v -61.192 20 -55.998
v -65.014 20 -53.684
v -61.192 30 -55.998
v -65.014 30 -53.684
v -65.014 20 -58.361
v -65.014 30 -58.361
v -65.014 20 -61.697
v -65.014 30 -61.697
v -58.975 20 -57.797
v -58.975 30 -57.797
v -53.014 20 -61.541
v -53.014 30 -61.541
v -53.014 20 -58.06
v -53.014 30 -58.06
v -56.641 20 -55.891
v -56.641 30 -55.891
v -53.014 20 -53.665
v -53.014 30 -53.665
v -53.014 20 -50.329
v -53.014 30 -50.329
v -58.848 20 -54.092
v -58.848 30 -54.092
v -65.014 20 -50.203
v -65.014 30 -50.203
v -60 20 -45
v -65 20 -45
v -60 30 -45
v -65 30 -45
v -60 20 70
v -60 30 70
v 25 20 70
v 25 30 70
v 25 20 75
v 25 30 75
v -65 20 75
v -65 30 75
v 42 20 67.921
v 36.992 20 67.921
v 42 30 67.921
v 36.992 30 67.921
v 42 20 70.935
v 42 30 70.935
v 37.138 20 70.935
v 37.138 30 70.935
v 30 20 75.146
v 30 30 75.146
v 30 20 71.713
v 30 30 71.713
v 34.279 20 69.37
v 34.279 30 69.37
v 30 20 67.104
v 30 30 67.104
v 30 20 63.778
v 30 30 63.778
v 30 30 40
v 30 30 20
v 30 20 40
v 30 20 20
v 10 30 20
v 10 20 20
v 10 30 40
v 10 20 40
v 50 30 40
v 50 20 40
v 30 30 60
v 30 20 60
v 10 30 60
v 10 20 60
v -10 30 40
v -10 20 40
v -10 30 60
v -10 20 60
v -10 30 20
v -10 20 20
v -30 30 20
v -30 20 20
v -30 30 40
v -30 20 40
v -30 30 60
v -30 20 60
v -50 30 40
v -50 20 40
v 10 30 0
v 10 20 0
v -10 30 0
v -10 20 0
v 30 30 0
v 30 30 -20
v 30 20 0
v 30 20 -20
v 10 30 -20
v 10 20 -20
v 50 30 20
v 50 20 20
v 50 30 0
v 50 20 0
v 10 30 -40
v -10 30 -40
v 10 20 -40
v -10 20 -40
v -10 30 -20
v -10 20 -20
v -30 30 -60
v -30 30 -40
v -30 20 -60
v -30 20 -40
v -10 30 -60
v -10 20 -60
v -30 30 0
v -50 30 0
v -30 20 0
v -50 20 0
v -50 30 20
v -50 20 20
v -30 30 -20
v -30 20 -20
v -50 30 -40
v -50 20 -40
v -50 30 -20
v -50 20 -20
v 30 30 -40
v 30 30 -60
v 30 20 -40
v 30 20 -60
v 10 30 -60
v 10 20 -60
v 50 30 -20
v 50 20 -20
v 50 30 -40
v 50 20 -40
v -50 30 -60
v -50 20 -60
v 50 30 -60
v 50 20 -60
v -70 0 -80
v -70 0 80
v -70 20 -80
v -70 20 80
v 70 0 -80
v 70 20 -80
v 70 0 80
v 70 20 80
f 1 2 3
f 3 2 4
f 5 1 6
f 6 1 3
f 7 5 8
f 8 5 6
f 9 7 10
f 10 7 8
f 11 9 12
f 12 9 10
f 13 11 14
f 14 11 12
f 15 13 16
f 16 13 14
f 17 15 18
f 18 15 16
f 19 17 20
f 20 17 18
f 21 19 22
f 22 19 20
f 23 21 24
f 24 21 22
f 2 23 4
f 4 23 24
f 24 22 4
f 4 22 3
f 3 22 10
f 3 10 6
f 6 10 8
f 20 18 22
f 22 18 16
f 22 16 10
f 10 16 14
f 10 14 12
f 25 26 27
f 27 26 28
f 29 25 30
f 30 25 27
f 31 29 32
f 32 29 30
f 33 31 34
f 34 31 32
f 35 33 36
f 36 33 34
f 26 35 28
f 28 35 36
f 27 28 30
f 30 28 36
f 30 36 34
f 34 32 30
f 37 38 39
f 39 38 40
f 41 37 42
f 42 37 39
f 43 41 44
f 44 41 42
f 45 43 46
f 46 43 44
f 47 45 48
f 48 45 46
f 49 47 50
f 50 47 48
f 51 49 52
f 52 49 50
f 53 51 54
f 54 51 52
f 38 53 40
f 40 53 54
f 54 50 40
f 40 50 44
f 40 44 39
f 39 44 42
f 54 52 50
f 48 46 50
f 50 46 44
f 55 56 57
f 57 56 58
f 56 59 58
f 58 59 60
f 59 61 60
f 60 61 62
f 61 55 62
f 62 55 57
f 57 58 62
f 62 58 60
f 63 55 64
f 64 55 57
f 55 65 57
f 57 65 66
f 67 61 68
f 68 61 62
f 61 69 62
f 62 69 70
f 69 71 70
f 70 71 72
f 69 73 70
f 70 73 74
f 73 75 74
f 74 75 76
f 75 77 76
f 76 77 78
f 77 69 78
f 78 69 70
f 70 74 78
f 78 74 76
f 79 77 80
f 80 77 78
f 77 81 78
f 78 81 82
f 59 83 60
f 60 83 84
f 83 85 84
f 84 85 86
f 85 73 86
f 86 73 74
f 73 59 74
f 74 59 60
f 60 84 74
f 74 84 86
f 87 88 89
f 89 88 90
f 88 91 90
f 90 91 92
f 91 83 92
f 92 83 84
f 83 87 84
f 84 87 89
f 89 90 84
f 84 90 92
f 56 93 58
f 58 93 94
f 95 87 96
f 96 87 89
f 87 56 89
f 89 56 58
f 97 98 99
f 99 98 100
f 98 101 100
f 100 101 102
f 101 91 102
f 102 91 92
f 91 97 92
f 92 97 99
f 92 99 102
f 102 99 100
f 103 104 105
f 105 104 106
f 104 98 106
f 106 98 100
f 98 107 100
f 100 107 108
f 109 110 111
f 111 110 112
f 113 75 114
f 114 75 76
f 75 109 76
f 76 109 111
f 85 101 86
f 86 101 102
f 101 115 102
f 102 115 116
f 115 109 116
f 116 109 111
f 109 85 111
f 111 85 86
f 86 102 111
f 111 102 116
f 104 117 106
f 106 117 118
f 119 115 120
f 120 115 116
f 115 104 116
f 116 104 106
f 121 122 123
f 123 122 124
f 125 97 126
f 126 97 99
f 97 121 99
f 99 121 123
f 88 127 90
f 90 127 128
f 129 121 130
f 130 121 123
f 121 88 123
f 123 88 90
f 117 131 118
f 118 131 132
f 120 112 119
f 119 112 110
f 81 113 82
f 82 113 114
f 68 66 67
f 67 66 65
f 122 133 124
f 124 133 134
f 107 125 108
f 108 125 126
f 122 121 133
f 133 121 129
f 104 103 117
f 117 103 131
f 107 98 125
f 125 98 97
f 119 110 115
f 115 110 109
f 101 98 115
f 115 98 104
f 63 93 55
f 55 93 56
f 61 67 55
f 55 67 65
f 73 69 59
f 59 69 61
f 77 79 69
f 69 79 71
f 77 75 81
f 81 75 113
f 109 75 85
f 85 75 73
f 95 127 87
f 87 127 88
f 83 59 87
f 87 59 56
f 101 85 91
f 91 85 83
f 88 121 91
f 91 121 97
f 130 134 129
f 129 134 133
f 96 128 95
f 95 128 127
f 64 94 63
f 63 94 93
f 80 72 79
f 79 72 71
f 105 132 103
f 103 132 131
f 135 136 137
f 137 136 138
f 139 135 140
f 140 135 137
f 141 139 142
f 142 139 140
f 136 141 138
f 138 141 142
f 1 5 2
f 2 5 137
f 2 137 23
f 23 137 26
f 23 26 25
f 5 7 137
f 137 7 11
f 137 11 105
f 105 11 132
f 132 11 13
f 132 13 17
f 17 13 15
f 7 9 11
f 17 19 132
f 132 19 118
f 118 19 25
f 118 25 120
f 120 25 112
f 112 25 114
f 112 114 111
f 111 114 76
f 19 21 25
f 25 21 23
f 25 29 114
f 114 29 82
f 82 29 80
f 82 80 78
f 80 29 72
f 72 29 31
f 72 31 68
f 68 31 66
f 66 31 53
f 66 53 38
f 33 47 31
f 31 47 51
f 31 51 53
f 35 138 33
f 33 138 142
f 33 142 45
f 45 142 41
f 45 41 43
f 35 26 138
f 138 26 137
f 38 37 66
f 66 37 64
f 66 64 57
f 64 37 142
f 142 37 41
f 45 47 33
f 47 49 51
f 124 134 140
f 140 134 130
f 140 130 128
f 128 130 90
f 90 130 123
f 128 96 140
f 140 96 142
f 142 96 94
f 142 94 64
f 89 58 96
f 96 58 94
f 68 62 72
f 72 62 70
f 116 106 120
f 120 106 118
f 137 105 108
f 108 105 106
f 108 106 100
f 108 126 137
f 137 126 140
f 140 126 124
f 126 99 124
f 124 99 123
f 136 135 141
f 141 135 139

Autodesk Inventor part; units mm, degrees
ref_plane "YZ Plane" through (0, 0, 0) normal (1, 0, 0) x (0, 1, 0)
ref_plane "XZ Plane" through (0, 0, 0) normal (0, 1, 0) x (-1, 0, 0)
ref_plane "XY Plane" through (0, 0, 0) normal (0, 0, 1) x (1, 0, 0)
sketch "Sketch1" plane through (0, 0, 0) normal (0, 1, 0) x (-1, 0, 0)
  line L0 (70, 80) -> (-70, 80)
  line L1 (-70, 80) -> (-70, -80)
  line L2 (-70, -80) -> (70, -80)
  line L3 (70, -80) -> (70, 80)
  point P0 (0, 0)
  dimension "d0" = 140
  dimension "d1" = 160
  dimension "d4" = 70
  dimension "d5" = 80
extrude "Extrusion1" add sketch "Sketch1" along normal blind 20
sketch "Sketch2" plane through (0, 20, 0) normal (0, 1, 0) x (1, 0, 0)
  line L0 (50, 60) -> (-50, 60)
  line L1 (-50, 60) -> (-50, -60)
  line L2 (-50, -60) -> (50, -60)
  line L3 (50, -60) -> (50, 60)
  line L4 (50, 60) -> (-50, -60) construction
  line L5 (-50, 60) -> (50, -60) construction
  point P0 (0, 0)
  dimension "d8" = 100
  dimension "d9" = 120
extrude "Extrusion2" add sketch "Sketch2" along normal blind 10
sketch "Sketch3" plane through (0, 30, 0) normal (0, 1, 0) x (1, 0, 0)
  line L0 (-50, 60) -> (-50, -60) projected
  line L1 (-50, -60) -> (-30, -60)
  line L2 (-30, -60) -> (-30, -40)
  line L3 (-30, -40) -> (-50, -40)
  line L4 (-50, -40) -> (-50, -60)
  line L5 (-10, -60) -> (10, -60)
  line L6 (10, -60) -> (10, -40)
  line L7 (10, -40) -> (-10, -40)
  line L8 (-10, -40) -> (-10, -60)
  line L9 (10, -40) -> (30, -40)
  line L10 (30, -40) -> (30, -20)
  line L11 (30, -20) -> (10, -20)
  line L12 (10, -20) -> (10, -40)
  line L13 (-30, -40) -> (-10, -40)
  line L14 (-10, -40) -> (-10, -20)
  line L15 (-10, -20) -> (-30, -20)
  line L16 (-30, -20) -> (-30, -40)
  line L17 (-50, -60) -> (50, -60) projected
  line L18 (-53.5785, -189.3047) -> (-33.5785, -189.3047)
  line L19 (-33.5785, -189.3047) -> (-33.5785, -169.3047)
  line L20 (-33.5785, -169.3047) -> (-53.5785, -169.3047)
  line L21 (-53.5785, -169.3047) -> (-53.5785, -189.3047)
  line L22 (-50, -20) -> (-30, -20)
  line L23 (-30, -20) -> (-30, 0)
  line L24 (-30, 0) -> (-50, 0)
  line L25 (-50, 0) -> (-50, -20)
  line L26 (-10, -20) -> (10, -20)
  line L27 (10, -20) -> (10, 0)
  line L28 (10, 0) -> (-10, 0)
  line L29 (-10, 0) -> (-10, -20)
  line L30 (10, 40) -> (30, 40)
  line L31 (30, 40) -> (30, 60)
  line L32 (30, 60) -> (10, 60)
  line L33 (10, 60) -> (10, 40)
  line L34 (-10, 20) -> (-30, 20)
  line L35 (-30, 0) -> (-10, 0)
  line L36 (-30, 20) -> (-30, 0)
  line L37 (-10, 0) -> (-10, 20)
  line L38 (10, 40) -> (-10, 40)
  line L39 (-10, 20) -> (10, 20)
  line L40 (-10, 40) -> (-10, 20)
  line L41 (10, 20) -> (10, 40)
  line L42 (30, 20) -> (10, 20)
  line L43 (10, 0) -> (30, 0)
  line L44 (10, 20) -> (10, 0)
  line L45 (30, 0) -> (30, 20)
  line L46 (-10, 60) -> (-30, 60)
  line L47 (-30, 40) -> (-10, 40)
  line L48 (-30, 60) -> (-30, 40)
  line L49 (-10, 40) -> (-10, 60)
  line L50 (-30, 40) -> (-50, 40)
  line L51 (-50, 20) -> (-30, 20)
  line L52 (-50, 40) -> (-50, 20)
  line L53 (-30, 20) -> (-30, 40)
  line L54 (30, 20) -> (50, 20)
  line L55 (50, 20) -> (50, 40)
  line L56 (50, 40) -> (30, 40)
  line L57 (30, 40) -> (30, 20)
  line L58 (30, -20) -> (50, -20)
  line L59 (50, -20) -> (50, 0)
  line L60 (50, 0) -> (30, 0)
  line L61 (30, 0) -> (30, -20)
  line L62 (30, -60) -> (50, -60)
  line L63 (50, -60) -> (50, -40)
  line L64 (50, -40) -> (30, -40)
  line L65 (30, -40) -> (30, -60)
  dimension "d12" = 20
  dimension "d13" = 20
  dimension "d14" = 20
  dimension "d15" = 20
  dimension "d17" = 20
  dimension "d18" = 20
  dimension "d19" = 20
  dimension "d21" = 20
  dimension "d22" = 20
  dimension "d25" = 20
  dimension "d26" = 20
  dimension "d27" = 20
  dimension "d28" = 20
  dimension "d30" = 20
  dimension "d31" = 20
  dimension "d33" = 20
  dimension "d34" = 20
  dimension "d36" = 20
  dimension "d37" = 20
  dimension "d39" = 20
  dimension "d40" = 20
  dimension "d42" = 20
  dimension "d43" = 20
  dimension "d45" = 20
  dimension "d46" = 20
  dimension "d48" = 20
  dimension "d49" = 20
  dimension "d77" = 20
  dimension "d78" = 20
  dimension "d80" = 20
  dimension "d81" = 20
  dimension "d83" = 20
  dimension "d84" = 20
extrude "Extrusion5" cut sketch "Sketch3" against normal blind 10 contours L50 L53 L51 L0 | L48 L46 L49 L47 | L24 L23 L22 L0 | L34 L37 L35 L36 | L38 L41 L39 L40 | L33 L32 L31 L30 | L3 L2 L1 L0 | L15 L14 L13 L16 | L28 L27 L26 L29 | L42 L45 L43 L44 | L56 L55 L54 L57 | L7 L6 L5 L8 | L11 L10 L9 L12 | L60 L59 L58 L61 | L64 L63 L17 L65
sketch "Sketch4" plane through (0, 20, 0) normal (0, 1, 0) x (1, 0, 0)
  line L0 (-65, -75) -> (-65, 45)
  line L1 (-65, 45) -> (-60, 45)
  line L2 (-60, 45) -> (-60, -70)
  line L3 (-60, -70) -> (25, -70)
  line L4 (25, -70) -> (25, -75)
  line L5 (25, -75) -> (-65, -75)
  line L6 (-70, -80) -> (70, -80) projected
  line L7 (-70, 80) -> (-70, -80) projected
  line L8 (-53.0136, 61.5997) -> (-53.0136, 50) construction
  line L9 (-53.0136, 50) -> (-65.2641, 50) construction
  line L10 (-65.2641, 50) -> (-65.2641, 61.5997) construction
  line L11 (-65.2641, 61.5997) -> (-53.0136, 61.5997) construction
  line L12 (30, -75) -> (30, -63.5159) construction
  line L13 (30, -63.5159) -> (34.1954, -63.5159) construction
  line L14 (34.1954, -63.5159) -> (34.1954, -75) construction
  line L15 (34.1954, -75) -> (30, -75) construction
  line L16 (-65.0136, 50.2026) -> (-65.0136, 53.684)
  line L17 (-65.0136, 53.684) -> (-61.1919, 55.9984)
  line L18 (-61.1919, 55.9984) -> (-65.0136, 58.3615)
  line L19 (-65.0136, 58.3615) -> (-65.0136, 61.697)
  line L20 (-65.0136, 61.697) -> (-58.9747, 57.7975)
  line L21 (-58.9747, 57.7975) -> (-53.0136, 61.5414)
  line L22 (-53.0136, 61.5414) -> (-53.0136, 58.06)
  line L23 (-53.0136, 58.06) -> (-56.6408, 55.8915)
  line L24 (-56.6408, 55.8915) -> (-53.0136, 53.6646)
  line L25 (-53.0136, 53.6646) -> (-53.0136, 50.3291)
  line L26 (-53.0136, 50.3291) -> (-58.8483, 54.0924)
  line L27 (-58.8483, 54.0924) -> (-65.0136, 50.2026)
  line L28 (30, -63.778) -> (36.9919, -67.9206)
  line L29 (36.9919, -67.9206) -> (42, -67.9206)
  line L30 (42, -67.9206) -> (42, -70.9352)
  line L31 (42, -70.9352) -> (37.1378, -70.9352)
  line L32 (37.1378, -70.9352) -> (30, -75.1459)
  line L33 (30, -75.1459) -> (30, -71.7131)
  line L34 (30, -71.7131) -> (34.2788, -69.3695)
  line L35 (34.2788, -69.3695) -> (30, -67.1037)
  line L36 (30, -67.1037) -> (30, -63.778)
  point P0 (0, 0)
  point P1 (-62.5, 45)
  point P2 (-58.8748, 54.3197)
  point P3 (25, -72.5)
  point P4 (28.8521, -69.3123)
  point P5 (28.8521, -69.3123)
  dimension "d53" = 5
  dimension "d54" = 5
  dimension "d55" = 5
  dimension "d56" = 5
  dimension "d57" = 120
  dimension "d58" = 90
  dimension "d63" = 12.2505
  dimension "d73" = 5
  dimension "d88" = 5
  dimension "d90" = 5
extrude "Extrusion4" add sketch "Sketch4" along normal blind 10
equation "\"d4\" = 0.5 * d0"
equation "\"d5\" = 0.5 * d1"
equation "\"d12\" = cell"
equation "\"d13\" = cell"
equation "\"d14\" = d16"
equation "\"d15\" = d16"
equation "\"d17\" = cell"
equation "\"d18\" = d20"
equation "\"d19\" = d20"
equation "\"d21\" = d23"
equation "\"d22\" = d23"
equation "\"d25\" = cell"
equation "\"d26\" = cell"
equation "\"d27\" = d29"
equation "\"d28\" = d29"
equation "\"d30\" = d32"
equation "\"d31\" = d32"
equation "\"d33\" = d35"
equation "\"d34\" = d35"
equation "\"d36\" = d38"
equation "\"d37\" = d38"
equation "\"d39\" = d41"
equation "\"d40\" = d41"
equation "\"d42\" = d44"
equation "\"d43\" = d44"
equation "\"d45\" = d47"
equation "\"d46\" = d47"
equation "\"d48\" = d50"
equation "\"d49\" = d50"
equation "\"cell\" = 20"
equation "\"d16\" = 20"
equation "\"d20\" = 20"
equation "\"d23\" = 20"
equation "\"d29\" = 20"
equation "\"d32\" = 20"
equation "\"d35\" = 20"
equation "\"d38\" = 20"
equation "\"d41\" = 20"
equation "\"d44\" = 20"
equation "\"d47\" = 20"
equation "\"d50\" = 20"
properties part number "3D_Grid"
